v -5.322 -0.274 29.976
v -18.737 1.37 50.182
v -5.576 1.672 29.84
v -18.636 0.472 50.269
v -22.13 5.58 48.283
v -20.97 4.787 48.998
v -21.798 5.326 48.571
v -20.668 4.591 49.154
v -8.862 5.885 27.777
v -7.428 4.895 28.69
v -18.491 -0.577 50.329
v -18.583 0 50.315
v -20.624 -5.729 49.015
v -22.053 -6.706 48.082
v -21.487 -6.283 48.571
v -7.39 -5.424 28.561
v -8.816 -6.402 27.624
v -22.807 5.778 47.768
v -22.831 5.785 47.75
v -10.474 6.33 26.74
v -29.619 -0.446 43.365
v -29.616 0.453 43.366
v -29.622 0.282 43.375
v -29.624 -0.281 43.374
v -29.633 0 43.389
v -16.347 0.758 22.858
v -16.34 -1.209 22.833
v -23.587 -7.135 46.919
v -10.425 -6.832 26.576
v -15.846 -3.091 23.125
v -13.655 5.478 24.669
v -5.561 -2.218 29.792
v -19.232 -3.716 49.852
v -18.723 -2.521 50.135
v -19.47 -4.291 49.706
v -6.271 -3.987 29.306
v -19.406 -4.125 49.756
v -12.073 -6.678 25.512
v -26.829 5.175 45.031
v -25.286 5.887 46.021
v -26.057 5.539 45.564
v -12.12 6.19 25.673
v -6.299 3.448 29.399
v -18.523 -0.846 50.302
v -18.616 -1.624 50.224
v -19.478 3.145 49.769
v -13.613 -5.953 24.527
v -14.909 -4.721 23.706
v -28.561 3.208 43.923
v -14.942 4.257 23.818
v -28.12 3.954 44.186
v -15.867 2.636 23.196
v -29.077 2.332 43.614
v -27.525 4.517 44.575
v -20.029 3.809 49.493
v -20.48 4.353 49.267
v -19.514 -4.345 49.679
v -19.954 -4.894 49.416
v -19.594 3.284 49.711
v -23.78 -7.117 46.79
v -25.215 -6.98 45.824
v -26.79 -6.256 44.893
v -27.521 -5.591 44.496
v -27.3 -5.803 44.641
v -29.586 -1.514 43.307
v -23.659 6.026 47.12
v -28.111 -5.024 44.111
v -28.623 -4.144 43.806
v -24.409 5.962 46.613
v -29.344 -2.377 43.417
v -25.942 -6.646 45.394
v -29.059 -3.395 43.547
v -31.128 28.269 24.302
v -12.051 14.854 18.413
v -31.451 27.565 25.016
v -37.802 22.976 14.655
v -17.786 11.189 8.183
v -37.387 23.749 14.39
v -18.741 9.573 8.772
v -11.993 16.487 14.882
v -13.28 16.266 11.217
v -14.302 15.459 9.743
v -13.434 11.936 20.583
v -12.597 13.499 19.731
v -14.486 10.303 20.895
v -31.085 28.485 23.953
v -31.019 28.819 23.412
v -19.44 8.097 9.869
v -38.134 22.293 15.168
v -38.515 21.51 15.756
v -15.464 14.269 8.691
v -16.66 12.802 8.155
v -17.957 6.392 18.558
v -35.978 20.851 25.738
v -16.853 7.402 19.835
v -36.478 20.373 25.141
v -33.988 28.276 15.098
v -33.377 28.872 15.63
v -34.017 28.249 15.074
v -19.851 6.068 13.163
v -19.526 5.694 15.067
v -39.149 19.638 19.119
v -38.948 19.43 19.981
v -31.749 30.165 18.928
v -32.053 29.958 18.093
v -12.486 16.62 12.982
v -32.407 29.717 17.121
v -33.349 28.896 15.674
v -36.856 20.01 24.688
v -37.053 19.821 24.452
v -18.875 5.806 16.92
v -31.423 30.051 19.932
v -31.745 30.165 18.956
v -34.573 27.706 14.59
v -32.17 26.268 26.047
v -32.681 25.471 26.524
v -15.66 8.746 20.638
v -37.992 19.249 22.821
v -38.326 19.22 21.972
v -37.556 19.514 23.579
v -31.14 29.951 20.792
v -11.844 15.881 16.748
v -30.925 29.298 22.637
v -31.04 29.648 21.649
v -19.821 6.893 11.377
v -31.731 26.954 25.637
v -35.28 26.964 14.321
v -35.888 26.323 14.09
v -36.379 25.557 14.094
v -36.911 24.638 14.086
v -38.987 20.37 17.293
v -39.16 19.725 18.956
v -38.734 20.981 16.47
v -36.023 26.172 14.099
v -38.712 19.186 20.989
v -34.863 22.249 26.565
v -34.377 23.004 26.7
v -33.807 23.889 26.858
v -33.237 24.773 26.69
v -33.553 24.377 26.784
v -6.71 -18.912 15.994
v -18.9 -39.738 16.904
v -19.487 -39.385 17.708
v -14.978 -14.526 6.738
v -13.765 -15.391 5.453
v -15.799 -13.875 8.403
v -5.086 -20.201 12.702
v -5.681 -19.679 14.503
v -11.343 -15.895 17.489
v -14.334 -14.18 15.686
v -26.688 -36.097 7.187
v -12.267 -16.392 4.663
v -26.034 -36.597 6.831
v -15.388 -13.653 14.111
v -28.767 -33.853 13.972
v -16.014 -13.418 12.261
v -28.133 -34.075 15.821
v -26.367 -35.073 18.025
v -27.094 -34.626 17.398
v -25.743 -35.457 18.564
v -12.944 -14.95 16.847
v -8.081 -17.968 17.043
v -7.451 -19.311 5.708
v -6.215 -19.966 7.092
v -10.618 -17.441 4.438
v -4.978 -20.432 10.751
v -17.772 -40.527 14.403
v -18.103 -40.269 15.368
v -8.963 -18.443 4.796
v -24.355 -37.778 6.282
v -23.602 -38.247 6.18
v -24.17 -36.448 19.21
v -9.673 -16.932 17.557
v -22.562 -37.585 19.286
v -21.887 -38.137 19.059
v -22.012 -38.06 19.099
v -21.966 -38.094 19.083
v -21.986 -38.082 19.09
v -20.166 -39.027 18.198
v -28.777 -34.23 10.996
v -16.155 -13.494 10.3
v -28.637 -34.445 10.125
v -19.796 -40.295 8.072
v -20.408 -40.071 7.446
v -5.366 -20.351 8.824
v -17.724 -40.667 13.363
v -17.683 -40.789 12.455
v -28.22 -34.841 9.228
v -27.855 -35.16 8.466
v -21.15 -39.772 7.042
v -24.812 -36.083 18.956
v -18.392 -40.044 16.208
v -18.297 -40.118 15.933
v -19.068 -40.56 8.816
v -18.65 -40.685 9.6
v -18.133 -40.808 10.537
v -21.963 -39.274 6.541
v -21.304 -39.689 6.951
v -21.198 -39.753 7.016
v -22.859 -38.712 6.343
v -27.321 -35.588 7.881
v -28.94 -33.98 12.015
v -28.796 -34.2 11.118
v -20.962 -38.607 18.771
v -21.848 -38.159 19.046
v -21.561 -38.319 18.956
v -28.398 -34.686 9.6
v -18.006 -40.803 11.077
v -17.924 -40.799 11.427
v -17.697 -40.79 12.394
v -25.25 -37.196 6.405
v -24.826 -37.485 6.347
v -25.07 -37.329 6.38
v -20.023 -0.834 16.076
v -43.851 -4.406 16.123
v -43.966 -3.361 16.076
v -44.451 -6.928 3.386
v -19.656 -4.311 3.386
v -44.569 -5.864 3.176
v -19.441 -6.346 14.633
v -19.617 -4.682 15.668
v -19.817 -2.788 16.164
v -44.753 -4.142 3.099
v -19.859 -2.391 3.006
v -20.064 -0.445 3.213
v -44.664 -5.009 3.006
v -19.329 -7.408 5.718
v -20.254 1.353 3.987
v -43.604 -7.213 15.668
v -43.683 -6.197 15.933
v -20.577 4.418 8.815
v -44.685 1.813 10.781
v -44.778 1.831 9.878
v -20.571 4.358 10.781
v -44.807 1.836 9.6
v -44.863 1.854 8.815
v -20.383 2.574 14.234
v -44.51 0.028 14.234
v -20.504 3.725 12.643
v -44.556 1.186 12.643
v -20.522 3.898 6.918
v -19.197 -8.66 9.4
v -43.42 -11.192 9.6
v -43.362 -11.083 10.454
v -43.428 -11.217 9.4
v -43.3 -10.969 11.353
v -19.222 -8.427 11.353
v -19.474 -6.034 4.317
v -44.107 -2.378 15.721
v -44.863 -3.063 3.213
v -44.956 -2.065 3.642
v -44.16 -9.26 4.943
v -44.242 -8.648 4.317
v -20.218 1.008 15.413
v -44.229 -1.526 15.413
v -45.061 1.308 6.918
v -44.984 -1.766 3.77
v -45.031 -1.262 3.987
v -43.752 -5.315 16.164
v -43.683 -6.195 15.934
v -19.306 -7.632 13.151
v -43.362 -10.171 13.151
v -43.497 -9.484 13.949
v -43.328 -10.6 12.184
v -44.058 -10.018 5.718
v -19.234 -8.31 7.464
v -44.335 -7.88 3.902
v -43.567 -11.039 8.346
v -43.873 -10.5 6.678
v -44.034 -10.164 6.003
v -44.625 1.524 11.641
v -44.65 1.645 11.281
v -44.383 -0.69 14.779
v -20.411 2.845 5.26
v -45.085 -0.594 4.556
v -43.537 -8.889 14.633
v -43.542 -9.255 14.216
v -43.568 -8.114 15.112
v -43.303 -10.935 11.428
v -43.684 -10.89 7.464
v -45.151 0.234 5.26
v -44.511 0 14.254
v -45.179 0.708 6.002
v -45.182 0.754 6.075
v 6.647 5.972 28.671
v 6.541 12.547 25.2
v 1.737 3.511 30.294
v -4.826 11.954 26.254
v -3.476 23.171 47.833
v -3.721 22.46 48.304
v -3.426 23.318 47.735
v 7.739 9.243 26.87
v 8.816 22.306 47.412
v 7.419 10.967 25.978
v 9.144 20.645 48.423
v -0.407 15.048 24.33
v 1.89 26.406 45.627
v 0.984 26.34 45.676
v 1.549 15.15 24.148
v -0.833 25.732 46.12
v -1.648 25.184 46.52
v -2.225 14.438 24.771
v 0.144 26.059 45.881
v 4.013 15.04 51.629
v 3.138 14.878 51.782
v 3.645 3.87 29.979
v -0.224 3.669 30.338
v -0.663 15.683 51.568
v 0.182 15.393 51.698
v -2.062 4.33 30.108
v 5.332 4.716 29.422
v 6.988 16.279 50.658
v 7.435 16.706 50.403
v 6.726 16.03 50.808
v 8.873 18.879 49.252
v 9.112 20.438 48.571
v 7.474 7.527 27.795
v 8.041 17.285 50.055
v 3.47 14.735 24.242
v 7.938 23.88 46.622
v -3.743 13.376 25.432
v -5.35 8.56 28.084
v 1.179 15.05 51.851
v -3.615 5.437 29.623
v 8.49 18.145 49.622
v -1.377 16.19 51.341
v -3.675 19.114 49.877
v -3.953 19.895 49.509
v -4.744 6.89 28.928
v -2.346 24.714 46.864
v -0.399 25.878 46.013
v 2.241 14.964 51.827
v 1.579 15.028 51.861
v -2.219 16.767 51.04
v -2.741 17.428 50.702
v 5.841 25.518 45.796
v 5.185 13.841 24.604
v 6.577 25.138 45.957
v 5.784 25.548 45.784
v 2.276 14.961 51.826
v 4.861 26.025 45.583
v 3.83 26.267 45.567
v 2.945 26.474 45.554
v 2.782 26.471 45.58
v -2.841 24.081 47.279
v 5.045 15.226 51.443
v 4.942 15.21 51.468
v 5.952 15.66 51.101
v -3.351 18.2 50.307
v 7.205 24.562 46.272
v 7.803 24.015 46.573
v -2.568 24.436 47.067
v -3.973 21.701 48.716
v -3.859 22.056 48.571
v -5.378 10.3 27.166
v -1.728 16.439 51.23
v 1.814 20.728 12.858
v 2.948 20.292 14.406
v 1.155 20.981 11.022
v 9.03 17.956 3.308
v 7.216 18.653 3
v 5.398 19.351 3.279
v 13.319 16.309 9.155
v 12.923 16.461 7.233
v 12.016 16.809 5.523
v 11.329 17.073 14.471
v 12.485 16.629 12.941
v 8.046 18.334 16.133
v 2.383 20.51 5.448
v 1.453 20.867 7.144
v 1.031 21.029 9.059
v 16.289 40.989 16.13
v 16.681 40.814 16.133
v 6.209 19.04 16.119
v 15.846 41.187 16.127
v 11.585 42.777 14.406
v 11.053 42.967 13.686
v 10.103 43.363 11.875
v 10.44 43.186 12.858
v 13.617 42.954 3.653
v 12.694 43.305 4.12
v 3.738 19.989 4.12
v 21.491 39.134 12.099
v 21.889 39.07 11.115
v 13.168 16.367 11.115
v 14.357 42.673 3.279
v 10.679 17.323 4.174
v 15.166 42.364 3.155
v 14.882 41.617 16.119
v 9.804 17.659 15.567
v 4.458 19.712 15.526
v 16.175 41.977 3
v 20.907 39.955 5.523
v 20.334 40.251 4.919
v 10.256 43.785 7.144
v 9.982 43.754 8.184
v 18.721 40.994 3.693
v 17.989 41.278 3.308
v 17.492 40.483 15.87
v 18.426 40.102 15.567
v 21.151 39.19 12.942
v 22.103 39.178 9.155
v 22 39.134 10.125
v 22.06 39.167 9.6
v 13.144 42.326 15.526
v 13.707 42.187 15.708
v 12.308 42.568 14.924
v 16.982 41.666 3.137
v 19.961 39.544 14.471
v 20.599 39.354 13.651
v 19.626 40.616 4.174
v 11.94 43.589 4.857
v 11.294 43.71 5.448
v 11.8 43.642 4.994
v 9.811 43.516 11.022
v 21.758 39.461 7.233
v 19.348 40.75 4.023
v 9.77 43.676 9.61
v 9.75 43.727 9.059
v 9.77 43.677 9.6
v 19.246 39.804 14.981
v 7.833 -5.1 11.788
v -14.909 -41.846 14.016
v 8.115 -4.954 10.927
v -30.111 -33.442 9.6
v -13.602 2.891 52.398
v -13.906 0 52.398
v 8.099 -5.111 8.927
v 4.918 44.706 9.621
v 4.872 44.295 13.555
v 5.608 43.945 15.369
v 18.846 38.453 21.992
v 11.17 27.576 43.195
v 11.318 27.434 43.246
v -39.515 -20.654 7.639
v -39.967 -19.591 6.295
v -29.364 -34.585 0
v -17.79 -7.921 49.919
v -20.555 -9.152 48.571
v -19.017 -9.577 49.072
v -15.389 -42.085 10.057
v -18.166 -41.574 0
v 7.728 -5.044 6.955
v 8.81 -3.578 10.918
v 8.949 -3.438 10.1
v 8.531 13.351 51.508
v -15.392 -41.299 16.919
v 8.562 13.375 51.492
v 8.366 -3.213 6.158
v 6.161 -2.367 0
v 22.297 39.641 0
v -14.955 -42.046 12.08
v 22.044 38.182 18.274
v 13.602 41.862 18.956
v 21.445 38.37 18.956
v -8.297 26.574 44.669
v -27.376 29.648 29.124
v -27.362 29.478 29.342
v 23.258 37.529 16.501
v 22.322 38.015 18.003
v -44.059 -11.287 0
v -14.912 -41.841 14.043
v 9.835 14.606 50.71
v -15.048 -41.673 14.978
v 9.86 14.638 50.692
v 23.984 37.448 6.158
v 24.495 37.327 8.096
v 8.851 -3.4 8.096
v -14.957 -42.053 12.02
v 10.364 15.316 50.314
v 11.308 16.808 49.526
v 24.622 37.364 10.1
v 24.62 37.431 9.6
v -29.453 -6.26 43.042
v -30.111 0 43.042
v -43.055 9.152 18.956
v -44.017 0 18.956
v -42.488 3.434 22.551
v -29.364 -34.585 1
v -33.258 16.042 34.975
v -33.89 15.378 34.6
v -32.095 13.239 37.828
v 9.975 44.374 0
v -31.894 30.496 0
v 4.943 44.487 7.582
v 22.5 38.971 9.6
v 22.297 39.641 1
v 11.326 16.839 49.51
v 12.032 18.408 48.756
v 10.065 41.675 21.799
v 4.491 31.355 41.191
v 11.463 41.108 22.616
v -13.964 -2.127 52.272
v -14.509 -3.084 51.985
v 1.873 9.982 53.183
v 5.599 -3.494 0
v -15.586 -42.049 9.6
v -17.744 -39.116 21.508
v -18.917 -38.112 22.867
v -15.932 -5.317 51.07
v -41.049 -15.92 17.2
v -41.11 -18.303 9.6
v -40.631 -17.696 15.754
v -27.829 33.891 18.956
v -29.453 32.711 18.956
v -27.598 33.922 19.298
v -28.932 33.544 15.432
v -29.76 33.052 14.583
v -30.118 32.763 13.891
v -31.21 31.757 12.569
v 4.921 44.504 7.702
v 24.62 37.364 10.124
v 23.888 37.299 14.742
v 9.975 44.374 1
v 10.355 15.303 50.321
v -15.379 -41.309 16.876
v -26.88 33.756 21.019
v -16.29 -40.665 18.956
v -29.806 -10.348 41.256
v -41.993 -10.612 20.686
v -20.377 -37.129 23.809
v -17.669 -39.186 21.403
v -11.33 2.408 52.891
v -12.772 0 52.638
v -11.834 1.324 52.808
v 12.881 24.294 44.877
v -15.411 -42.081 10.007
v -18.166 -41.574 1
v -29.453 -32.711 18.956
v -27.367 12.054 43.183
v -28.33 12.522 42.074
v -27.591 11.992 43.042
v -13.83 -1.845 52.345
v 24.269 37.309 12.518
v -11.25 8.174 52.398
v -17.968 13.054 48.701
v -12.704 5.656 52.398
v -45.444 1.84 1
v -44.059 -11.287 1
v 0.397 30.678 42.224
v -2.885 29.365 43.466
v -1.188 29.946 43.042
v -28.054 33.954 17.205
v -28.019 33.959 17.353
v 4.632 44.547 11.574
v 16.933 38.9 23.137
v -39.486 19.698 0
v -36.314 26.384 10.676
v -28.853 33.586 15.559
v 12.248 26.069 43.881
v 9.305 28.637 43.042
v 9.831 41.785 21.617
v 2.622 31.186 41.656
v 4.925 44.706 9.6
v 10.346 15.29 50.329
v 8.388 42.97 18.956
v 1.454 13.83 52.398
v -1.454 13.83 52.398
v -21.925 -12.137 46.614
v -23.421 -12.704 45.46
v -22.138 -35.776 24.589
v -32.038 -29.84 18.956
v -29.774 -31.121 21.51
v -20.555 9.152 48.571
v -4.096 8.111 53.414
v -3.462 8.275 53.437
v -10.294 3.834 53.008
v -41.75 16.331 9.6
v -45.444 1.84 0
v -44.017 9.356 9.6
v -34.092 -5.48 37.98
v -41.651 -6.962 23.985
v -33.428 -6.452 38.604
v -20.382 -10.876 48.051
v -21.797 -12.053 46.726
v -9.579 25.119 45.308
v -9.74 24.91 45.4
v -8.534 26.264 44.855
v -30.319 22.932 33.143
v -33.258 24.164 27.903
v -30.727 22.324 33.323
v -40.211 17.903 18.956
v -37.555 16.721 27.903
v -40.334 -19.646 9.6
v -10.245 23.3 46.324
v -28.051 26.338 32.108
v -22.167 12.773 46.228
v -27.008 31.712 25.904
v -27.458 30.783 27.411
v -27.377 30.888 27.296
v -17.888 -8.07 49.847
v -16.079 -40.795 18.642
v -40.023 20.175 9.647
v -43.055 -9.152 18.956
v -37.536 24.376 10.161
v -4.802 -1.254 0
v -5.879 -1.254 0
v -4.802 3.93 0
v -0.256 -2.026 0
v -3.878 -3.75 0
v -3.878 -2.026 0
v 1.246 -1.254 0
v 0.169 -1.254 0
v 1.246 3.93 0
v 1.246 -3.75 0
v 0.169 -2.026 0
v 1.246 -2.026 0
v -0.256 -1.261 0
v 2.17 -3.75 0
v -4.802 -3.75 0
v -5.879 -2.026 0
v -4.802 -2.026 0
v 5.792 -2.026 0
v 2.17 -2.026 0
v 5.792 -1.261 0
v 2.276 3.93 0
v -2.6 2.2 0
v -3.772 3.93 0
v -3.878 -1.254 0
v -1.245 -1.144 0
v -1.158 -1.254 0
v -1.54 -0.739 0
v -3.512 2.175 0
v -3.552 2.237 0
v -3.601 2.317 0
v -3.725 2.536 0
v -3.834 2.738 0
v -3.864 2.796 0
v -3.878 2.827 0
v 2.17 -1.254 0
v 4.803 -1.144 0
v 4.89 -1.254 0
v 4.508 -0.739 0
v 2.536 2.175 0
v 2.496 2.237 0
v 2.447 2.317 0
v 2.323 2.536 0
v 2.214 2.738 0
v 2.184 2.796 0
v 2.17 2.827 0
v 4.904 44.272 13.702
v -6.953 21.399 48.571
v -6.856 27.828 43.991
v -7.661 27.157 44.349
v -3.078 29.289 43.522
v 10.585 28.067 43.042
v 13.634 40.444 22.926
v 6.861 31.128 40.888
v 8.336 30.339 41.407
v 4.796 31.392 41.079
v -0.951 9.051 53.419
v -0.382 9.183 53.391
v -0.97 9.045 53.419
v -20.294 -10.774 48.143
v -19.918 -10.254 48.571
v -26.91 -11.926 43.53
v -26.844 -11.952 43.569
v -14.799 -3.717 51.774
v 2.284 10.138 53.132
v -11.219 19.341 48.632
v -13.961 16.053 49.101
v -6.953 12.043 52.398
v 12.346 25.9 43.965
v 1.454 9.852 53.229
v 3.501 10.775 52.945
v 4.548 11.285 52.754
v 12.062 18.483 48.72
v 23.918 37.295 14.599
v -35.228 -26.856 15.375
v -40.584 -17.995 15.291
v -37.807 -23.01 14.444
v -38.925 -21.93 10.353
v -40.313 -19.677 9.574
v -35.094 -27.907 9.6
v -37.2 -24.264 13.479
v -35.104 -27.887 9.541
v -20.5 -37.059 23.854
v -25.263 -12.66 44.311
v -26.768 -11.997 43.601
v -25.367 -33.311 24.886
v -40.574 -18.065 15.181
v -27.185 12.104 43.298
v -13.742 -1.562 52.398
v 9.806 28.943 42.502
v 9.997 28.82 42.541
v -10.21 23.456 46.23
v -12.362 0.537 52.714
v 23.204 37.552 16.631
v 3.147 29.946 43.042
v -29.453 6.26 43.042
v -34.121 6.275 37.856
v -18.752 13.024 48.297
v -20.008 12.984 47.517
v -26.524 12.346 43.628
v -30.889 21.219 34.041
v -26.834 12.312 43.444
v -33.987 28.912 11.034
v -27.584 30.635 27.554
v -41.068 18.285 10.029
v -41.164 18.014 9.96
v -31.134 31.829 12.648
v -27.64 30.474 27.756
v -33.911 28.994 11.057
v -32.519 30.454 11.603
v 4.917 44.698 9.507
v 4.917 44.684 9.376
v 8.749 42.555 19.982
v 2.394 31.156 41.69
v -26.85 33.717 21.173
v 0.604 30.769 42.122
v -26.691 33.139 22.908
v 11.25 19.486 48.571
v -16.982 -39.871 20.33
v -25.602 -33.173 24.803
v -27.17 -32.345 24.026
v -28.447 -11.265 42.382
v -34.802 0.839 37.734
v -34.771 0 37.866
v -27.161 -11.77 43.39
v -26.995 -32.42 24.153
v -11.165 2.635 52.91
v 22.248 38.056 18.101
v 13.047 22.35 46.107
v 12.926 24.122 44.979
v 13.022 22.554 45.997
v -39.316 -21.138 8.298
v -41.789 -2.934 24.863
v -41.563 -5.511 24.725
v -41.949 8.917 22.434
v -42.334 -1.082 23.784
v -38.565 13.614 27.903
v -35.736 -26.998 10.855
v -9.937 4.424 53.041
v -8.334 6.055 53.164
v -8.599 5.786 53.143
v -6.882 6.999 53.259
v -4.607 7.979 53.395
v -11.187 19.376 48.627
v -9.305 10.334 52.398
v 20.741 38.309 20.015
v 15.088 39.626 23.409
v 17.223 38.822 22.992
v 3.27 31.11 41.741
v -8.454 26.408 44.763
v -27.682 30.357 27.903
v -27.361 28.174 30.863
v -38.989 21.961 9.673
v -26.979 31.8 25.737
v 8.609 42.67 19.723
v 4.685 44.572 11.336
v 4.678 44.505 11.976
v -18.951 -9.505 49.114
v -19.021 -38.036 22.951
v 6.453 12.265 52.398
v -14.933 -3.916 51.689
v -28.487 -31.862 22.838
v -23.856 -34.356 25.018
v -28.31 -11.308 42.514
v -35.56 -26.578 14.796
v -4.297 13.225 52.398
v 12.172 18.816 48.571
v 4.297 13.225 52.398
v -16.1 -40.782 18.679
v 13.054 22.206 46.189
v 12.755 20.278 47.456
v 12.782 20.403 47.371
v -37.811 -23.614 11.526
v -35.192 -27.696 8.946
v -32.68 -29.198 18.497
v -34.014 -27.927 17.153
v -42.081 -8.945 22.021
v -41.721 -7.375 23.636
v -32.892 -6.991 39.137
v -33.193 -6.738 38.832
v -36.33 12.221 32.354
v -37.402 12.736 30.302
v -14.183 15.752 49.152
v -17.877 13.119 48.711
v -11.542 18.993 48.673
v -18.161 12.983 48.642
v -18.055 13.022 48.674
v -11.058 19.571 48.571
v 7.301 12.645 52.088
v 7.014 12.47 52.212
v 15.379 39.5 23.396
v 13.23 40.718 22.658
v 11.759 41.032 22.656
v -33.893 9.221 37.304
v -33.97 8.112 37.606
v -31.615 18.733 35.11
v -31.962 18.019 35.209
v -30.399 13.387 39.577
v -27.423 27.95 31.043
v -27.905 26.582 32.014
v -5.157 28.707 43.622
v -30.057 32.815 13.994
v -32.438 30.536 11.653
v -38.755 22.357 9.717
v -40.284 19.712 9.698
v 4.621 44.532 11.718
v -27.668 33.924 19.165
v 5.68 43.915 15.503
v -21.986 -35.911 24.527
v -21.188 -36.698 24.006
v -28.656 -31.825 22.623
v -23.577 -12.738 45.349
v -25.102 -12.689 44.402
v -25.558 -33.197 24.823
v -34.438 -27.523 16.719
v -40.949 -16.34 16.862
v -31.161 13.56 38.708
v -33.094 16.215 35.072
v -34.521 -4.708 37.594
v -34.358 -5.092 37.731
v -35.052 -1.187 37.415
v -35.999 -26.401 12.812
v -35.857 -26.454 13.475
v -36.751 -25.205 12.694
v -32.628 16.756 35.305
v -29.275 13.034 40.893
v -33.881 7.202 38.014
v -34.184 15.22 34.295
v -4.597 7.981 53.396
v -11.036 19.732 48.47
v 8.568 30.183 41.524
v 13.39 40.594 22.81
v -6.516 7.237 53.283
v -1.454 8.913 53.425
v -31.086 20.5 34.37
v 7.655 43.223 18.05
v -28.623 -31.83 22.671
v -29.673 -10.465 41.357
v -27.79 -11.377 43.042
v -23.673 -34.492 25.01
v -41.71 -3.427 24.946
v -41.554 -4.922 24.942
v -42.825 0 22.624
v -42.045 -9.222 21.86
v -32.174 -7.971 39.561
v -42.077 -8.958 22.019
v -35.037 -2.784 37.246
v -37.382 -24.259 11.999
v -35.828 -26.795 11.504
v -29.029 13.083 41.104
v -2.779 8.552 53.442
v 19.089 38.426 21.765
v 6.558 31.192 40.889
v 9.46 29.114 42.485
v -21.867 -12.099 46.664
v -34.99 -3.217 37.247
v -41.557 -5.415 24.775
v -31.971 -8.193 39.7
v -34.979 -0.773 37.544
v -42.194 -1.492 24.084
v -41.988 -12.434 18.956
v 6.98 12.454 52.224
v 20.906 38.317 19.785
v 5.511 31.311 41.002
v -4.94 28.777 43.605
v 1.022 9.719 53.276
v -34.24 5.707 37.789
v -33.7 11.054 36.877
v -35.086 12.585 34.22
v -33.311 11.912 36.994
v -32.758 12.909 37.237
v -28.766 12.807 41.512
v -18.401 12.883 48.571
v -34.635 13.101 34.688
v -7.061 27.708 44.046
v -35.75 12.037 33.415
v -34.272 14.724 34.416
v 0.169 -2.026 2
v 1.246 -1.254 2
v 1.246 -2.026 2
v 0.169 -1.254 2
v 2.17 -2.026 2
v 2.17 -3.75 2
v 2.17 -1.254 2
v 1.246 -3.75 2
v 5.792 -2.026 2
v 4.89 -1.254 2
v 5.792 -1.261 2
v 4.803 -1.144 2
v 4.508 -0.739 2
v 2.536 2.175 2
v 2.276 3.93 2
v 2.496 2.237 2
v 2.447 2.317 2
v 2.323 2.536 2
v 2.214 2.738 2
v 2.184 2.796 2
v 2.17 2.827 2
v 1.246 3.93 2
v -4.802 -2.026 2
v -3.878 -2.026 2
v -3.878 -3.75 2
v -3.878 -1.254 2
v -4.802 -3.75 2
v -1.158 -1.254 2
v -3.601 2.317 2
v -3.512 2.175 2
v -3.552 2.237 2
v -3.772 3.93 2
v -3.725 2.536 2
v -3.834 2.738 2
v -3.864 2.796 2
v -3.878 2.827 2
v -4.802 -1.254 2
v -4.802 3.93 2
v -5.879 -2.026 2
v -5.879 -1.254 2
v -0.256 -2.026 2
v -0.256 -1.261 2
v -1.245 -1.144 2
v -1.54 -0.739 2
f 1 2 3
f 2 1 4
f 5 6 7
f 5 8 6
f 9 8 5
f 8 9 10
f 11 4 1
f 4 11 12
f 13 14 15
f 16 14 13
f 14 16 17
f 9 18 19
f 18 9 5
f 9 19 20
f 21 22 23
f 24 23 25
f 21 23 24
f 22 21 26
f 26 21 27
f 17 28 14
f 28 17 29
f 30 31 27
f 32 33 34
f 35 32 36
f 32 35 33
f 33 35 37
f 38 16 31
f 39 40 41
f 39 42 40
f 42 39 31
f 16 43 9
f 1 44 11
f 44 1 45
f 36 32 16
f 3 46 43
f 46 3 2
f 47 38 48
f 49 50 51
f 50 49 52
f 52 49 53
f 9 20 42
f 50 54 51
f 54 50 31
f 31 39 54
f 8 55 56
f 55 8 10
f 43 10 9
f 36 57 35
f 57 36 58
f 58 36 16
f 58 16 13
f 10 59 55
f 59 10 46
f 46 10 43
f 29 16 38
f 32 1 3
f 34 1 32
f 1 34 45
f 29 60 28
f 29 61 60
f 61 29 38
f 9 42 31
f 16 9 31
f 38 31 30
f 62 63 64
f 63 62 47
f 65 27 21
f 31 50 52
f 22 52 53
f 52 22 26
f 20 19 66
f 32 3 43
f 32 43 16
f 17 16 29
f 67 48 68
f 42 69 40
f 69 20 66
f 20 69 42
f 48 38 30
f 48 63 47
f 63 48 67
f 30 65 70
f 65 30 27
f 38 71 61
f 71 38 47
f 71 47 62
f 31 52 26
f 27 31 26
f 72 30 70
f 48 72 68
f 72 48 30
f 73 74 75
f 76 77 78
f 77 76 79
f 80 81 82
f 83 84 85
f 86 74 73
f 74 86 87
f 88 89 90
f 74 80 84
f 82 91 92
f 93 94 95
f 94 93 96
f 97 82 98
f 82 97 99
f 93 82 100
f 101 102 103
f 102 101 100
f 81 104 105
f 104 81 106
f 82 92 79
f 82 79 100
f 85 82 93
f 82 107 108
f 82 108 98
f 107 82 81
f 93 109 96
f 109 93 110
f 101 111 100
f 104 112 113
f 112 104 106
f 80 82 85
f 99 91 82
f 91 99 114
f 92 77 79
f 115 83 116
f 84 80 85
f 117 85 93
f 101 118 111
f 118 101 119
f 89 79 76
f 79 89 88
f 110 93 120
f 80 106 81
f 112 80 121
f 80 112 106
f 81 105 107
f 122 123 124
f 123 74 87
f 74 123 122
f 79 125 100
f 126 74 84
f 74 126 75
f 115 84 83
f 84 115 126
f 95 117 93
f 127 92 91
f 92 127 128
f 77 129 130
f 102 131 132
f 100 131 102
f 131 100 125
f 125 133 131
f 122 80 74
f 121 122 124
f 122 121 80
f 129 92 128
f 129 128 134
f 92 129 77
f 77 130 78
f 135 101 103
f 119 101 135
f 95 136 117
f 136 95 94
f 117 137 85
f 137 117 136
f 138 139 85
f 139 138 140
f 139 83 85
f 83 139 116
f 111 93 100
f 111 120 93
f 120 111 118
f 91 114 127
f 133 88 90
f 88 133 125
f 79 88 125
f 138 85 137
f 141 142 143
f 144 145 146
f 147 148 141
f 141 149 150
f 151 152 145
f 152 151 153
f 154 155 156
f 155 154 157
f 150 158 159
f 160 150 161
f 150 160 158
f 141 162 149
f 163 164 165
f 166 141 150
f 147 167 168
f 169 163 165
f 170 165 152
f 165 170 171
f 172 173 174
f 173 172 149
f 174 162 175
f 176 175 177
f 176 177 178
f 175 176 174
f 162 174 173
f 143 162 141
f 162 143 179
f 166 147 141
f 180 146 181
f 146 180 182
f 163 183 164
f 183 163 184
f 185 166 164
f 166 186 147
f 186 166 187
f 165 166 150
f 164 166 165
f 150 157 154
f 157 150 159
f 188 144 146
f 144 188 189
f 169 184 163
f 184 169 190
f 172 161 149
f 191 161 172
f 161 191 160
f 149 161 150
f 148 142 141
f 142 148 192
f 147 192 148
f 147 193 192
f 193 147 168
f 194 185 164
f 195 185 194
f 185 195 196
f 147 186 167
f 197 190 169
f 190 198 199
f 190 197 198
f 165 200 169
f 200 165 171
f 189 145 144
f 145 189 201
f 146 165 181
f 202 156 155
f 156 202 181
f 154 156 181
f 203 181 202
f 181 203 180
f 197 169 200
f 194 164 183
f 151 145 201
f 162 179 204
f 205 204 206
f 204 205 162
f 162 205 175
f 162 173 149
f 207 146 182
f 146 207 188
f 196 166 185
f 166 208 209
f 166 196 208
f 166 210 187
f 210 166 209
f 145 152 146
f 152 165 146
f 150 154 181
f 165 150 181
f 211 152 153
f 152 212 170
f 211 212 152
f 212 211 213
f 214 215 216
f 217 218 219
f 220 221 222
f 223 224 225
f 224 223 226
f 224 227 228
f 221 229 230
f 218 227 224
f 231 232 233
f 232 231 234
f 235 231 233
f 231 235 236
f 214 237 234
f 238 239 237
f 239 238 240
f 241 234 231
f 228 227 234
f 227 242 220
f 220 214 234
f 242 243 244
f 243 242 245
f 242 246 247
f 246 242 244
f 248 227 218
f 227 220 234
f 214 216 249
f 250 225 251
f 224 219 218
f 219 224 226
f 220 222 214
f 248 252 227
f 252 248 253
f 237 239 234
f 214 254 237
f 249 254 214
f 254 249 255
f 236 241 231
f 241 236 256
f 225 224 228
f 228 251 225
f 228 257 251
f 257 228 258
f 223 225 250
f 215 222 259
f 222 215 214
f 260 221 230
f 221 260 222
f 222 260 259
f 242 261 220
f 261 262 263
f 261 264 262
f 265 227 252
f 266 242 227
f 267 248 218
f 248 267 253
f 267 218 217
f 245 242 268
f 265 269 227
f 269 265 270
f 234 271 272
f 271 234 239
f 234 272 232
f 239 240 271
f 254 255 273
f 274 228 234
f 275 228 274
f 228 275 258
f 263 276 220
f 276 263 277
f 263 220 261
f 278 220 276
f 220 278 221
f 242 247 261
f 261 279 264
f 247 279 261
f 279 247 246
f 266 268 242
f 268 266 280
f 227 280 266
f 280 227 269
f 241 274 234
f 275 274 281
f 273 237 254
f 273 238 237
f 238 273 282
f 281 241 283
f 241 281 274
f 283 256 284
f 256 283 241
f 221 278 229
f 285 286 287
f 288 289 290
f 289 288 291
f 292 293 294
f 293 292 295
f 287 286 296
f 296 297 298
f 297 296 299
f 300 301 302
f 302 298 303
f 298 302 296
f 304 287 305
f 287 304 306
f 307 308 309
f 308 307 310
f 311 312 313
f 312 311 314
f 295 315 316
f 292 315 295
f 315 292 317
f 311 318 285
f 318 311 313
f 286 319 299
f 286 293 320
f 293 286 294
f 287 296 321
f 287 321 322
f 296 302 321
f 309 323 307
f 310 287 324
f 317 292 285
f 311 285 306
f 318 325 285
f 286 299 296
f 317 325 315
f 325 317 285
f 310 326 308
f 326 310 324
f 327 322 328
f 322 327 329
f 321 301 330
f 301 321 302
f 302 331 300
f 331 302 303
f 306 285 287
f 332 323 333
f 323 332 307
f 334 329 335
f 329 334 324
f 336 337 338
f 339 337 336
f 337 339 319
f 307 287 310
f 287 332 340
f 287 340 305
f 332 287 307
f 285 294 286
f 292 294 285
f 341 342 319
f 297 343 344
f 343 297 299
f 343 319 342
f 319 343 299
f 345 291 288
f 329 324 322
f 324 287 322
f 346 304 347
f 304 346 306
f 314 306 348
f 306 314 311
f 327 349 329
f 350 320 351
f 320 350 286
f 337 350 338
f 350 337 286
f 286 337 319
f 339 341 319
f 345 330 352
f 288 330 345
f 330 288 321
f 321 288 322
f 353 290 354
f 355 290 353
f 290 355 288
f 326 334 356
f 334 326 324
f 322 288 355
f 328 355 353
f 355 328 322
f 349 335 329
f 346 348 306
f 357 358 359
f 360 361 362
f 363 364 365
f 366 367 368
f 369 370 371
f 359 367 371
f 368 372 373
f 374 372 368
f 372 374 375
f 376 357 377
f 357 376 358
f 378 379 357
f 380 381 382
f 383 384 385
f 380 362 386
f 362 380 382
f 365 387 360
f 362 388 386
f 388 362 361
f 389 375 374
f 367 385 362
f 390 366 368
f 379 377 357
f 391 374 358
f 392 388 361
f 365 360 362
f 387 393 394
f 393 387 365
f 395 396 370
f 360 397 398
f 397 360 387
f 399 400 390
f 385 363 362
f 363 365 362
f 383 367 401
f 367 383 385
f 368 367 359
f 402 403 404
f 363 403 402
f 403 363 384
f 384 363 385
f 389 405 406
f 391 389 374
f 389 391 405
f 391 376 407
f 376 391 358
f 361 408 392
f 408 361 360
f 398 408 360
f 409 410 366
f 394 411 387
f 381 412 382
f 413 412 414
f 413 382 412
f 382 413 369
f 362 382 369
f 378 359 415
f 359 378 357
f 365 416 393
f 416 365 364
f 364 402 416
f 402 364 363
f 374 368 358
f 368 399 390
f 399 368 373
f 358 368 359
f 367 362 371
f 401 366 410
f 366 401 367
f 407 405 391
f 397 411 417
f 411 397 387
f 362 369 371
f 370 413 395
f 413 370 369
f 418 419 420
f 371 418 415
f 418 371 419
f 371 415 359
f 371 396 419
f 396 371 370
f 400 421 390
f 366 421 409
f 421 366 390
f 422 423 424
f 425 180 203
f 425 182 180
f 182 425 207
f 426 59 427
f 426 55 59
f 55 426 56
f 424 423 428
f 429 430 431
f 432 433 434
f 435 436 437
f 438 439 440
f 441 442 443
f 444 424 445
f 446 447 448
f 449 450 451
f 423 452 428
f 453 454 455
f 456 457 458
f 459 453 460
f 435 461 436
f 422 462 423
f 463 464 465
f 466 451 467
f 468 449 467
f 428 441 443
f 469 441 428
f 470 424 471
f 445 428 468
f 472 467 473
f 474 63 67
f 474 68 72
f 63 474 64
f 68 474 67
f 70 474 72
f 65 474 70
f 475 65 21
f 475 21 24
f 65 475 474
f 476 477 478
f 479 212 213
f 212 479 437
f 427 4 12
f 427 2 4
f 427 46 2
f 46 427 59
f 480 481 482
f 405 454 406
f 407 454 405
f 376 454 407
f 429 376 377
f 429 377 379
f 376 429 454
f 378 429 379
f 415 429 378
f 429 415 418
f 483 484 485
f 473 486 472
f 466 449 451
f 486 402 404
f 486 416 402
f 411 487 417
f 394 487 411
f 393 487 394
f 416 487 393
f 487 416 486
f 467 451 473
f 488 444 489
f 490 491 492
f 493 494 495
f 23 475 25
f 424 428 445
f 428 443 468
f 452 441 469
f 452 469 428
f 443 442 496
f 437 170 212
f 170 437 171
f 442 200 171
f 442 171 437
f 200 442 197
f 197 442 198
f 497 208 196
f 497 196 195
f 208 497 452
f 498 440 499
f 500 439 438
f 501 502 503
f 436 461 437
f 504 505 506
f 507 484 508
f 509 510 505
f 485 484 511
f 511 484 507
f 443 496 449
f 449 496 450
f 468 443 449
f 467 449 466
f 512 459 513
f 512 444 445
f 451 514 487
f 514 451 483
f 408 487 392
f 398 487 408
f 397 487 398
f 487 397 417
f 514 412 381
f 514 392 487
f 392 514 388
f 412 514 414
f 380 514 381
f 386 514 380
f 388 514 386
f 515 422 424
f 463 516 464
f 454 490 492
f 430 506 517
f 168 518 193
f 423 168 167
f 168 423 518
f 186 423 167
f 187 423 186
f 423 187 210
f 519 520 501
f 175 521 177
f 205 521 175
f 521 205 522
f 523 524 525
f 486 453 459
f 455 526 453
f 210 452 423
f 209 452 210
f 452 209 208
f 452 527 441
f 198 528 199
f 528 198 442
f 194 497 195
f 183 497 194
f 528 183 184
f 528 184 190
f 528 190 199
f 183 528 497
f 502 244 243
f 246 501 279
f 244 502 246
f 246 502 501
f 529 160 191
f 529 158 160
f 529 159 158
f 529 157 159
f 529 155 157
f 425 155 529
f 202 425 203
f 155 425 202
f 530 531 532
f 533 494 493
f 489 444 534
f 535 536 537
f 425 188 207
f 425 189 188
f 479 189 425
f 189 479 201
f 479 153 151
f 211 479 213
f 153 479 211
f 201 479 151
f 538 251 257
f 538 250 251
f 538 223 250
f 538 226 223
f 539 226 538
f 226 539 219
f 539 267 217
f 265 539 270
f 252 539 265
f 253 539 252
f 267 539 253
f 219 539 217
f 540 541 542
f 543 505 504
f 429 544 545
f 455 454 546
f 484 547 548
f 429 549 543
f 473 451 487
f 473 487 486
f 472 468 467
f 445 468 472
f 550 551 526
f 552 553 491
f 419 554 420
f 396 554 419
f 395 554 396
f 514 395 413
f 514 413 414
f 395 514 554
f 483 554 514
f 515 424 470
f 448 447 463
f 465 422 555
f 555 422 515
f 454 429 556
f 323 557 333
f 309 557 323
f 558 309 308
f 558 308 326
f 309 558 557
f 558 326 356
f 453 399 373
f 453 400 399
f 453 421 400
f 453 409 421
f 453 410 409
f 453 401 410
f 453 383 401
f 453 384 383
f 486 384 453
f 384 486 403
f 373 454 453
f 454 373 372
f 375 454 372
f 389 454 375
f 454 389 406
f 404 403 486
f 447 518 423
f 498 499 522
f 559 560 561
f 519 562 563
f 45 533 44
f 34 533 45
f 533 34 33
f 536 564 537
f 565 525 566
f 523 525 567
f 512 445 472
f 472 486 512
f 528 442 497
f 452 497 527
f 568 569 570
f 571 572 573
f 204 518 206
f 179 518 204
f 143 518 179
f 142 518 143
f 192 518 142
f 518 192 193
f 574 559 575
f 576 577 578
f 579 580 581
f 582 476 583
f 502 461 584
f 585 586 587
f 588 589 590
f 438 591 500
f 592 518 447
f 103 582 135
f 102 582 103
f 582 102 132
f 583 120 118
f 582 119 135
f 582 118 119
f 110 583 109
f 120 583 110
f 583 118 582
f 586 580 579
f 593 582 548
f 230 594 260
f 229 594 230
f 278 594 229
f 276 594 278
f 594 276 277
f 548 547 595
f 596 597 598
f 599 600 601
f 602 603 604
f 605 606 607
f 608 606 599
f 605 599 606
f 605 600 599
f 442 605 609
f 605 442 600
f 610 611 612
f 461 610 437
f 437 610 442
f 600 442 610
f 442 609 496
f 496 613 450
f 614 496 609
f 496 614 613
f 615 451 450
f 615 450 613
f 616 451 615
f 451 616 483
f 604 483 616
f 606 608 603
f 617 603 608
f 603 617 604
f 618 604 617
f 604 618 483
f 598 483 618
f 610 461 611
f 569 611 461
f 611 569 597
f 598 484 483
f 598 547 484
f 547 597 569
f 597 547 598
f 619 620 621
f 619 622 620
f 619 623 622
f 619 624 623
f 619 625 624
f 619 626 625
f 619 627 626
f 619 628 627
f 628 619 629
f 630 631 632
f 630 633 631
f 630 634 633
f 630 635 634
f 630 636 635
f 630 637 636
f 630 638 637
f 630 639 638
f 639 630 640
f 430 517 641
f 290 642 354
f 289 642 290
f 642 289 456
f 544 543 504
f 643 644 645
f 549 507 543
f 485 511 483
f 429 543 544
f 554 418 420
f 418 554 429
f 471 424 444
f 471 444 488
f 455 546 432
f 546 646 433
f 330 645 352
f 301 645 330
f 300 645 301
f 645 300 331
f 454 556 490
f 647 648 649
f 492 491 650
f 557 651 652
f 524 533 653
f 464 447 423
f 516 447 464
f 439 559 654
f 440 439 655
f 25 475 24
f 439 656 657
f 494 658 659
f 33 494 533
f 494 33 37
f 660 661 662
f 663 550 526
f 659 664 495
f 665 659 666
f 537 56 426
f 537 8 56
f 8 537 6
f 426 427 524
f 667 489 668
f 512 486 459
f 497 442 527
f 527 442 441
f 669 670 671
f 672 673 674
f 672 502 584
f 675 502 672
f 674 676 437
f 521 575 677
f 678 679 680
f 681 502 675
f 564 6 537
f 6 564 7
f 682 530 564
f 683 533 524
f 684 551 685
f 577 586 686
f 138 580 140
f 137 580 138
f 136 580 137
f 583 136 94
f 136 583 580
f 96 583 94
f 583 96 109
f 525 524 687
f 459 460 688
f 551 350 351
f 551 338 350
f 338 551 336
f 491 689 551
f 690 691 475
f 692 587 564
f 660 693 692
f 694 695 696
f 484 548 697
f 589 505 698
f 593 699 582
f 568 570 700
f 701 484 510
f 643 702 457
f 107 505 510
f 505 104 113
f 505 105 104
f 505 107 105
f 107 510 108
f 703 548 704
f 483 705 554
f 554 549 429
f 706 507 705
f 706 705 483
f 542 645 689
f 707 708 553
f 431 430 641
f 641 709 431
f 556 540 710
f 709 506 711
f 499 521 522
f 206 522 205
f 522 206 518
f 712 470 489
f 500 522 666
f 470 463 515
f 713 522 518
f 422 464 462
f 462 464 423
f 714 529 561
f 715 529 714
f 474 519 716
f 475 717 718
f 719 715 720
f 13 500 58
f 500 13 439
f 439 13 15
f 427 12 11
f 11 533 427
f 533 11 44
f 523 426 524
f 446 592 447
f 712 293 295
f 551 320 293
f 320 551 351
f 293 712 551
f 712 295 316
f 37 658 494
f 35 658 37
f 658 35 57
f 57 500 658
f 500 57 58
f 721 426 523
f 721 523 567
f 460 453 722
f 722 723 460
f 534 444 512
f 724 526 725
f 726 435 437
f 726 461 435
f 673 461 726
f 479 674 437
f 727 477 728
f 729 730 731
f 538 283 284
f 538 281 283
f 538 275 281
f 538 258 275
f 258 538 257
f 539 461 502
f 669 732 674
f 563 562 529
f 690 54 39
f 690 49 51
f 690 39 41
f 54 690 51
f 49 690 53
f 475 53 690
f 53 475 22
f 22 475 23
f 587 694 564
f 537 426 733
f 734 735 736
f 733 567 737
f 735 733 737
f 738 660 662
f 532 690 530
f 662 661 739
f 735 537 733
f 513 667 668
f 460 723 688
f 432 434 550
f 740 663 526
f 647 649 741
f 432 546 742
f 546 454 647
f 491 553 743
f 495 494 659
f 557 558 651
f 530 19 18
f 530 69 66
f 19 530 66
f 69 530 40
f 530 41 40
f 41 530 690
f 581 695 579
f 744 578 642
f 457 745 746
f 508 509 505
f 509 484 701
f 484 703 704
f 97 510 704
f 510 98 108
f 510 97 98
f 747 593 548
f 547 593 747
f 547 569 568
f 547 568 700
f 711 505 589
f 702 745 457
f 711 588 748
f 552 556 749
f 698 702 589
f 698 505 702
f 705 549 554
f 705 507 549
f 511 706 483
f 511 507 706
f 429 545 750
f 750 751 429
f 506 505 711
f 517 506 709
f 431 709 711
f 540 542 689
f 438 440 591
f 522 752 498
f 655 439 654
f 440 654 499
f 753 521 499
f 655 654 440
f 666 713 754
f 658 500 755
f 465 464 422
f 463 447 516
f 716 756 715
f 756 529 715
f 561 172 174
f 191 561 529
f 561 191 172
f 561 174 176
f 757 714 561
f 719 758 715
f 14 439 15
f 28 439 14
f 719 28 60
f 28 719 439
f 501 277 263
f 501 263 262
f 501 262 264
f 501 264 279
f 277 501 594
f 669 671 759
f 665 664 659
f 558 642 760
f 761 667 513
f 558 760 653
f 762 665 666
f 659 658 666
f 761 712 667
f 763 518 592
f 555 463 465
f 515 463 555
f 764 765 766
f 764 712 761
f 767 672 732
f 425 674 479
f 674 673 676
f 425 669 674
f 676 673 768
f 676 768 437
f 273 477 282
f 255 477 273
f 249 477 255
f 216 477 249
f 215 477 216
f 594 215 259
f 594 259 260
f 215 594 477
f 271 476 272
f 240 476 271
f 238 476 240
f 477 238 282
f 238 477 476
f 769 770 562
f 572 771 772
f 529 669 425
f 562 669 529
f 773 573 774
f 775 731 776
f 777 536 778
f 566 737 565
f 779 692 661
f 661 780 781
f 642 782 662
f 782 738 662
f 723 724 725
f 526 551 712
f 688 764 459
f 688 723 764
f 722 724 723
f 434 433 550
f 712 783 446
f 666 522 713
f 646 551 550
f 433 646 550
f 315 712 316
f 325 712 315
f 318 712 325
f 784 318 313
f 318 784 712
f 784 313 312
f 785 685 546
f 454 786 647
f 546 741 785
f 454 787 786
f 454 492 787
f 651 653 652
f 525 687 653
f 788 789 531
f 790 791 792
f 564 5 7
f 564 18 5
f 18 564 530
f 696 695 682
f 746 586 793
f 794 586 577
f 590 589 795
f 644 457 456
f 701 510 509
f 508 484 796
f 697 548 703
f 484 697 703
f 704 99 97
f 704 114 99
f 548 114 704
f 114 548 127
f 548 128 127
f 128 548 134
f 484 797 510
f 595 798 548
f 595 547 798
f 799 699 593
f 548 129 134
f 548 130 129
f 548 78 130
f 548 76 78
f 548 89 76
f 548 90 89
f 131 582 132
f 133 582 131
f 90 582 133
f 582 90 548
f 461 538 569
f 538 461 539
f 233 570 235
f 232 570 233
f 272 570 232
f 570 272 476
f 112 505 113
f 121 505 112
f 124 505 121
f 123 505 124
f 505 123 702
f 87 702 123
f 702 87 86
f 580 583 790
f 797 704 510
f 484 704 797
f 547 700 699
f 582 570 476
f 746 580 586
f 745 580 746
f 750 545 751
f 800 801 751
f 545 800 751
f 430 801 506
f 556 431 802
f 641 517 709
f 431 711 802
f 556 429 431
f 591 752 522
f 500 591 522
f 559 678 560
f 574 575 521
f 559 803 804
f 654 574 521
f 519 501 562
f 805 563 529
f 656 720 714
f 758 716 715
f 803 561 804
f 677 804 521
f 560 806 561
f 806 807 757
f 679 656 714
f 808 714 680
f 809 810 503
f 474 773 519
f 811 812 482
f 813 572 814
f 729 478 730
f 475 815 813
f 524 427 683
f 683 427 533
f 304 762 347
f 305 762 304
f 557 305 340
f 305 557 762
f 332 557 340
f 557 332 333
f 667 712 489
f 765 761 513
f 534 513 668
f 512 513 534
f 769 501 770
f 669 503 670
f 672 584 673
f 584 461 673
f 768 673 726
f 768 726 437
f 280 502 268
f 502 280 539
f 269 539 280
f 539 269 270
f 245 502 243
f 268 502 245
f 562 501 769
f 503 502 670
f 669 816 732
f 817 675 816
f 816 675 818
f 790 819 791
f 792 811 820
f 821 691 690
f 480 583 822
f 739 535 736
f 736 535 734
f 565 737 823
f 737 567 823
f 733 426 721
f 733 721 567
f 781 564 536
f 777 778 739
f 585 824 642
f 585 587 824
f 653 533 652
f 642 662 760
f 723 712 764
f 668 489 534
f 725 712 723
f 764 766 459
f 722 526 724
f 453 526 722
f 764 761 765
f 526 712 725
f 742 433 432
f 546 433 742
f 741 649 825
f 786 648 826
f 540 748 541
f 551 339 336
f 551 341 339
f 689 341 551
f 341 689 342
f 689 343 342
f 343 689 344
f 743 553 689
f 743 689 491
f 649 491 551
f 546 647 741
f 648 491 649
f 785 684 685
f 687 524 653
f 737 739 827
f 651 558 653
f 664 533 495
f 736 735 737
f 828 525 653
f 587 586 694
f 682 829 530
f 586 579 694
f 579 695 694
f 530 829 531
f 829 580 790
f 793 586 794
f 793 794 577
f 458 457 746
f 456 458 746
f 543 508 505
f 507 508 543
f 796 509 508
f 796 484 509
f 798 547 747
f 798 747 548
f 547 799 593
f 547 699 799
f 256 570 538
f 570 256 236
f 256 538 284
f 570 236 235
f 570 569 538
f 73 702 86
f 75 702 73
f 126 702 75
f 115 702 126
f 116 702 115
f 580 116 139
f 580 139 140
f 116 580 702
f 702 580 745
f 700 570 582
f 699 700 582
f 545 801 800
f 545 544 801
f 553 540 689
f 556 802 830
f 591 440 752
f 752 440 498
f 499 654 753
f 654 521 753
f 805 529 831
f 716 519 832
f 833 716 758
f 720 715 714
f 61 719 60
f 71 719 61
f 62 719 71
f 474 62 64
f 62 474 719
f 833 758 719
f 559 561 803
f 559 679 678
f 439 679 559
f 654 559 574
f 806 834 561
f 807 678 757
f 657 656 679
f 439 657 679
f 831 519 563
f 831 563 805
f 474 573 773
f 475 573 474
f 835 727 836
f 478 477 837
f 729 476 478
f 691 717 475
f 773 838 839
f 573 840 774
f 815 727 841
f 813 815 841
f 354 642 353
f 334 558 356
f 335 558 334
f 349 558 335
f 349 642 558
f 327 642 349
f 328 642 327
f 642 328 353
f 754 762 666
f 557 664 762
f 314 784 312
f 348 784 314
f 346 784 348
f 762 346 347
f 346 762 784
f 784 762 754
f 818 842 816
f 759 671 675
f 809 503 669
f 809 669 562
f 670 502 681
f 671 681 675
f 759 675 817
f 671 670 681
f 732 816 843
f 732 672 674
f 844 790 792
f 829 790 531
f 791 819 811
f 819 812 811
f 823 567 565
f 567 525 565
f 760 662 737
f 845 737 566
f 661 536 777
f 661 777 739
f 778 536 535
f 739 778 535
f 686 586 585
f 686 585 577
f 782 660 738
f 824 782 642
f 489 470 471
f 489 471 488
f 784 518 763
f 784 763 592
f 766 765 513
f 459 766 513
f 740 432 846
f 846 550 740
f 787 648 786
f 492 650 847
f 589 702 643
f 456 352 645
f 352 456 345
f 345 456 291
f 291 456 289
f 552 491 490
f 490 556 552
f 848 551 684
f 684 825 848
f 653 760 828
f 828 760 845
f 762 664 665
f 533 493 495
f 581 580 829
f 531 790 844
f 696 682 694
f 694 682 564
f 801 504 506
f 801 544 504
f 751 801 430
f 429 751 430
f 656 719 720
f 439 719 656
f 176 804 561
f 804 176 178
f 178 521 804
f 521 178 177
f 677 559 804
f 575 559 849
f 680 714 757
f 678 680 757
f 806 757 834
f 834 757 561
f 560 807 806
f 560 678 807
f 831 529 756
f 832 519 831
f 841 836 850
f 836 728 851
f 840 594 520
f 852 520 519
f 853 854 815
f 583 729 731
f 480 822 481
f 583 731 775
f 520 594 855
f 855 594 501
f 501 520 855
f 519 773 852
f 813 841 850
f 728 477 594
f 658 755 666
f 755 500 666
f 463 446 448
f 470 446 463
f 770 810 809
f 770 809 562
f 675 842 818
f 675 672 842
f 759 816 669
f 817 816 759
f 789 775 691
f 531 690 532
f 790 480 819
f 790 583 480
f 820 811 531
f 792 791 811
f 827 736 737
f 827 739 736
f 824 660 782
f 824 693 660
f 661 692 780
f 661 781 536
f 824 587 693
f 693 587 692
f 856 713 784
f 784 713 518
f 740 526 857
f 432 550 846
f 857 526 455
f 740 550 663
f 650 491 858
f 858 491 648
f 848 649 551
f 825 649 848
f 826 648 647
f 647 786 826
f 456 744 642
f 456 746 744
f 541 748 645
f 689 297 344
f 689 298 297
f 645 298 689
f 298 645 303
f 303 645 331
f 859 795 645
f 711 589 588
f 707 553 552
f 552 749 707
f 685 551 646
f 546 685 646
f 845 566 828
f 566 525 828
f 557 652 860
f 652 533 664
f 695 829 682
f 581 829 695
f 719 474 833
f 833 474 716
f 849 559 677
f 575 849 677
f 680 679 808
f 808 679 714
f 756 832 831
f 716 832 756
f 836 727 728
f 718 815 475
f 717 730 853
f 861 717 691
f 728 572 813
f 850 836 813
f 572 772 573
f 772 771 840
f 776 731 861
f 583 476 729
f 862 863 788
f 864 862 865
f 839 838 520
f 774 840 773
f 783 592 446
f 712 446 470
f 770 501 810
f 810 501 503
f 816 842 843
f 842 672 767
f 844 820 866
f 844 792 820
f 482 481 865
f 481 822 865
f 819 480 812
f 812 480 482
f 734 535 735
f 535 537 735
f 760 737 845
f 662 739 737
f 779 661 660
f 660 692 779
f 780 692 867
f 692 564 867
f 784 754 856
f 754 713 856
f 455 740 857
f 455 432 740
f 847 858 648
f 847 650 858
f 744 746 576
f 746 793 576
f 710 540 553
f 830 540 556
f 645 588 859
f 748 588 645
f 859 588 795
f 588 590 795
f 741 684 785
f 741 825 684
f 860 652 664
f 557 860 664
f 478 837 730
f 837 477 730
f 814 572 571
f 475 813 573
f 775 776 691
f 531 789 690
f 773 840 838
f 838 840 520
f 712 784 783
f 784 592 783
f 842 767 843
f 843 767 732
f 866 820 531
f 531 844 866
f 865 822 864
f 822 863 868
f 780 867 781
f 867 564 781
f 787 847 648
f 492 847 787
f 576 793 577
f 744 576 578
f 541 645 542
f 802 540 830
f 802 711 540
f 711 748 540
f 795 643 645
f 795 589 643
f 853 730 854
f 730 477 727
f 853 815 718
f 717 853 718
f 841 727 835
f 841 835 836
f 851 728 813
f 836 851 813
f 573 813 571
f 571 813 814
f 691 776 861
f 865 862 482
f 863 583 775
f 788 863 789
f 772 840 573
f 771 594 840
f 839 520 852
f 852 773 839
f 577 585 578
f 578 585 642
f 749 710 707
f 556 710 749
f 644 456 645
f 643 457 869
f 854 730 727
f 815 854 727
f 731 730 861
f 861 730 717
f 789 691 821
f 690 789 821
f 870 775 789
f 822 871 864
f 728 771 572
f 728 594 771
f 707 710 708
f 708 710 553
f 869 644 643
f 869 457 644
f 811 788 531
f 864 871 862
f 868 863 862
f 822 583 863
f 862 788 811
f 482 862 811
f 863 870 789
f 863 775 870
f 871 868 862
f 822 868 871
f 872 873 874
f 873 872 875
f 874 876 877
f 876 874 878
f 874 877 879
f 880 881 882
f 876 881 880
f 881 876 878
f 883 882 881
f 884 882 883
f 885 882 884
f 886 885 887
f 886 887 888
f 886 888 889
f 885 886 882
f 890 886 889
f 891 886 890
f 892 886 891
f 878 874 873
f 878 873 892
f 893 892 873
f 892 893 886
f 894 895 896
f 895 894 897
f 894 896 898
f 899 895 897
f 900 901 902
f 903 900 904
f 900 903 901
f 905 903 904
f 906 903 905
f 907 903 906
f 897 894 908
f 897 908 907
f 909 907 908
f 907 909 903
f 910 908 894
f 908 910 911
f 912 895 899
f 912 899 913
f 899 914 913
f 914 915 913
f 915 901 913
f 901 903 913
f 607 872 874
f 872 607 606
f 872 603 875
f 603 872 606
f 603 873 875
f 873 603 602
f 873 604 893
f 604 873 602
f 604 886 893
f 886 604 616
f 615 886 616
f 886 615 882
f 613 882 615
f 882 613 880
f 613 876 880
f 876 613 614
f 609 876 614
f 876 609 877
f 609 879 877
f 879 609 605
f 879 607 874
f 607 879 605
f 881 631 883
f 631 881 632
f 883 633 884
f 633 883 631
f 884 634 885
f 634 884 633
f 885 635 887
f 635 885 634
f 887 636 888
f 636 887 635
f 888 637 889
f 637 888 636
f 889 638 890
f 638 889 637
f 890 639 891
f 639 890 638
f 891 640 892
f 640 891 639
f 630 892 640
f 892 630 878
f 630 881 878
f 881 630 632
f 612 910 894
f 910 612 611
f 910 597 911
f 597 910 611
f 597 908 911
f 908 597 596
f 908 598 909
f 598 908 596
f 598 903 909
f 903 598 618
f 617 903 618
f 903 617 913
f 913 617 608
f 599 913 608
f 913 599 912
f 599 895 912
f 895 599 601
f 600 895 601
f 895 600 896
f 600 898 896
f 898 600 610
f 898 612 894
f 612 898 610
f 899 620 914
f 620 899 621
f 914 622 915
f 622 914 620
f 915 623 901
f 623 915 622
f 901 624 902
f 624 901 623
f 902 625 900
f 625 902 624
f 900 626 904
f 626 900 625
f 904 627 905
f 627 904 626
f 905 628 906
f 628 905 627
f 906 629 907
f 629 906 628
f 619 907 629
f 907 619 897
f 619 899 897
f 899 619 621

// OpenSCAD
difference() {
	difference() {
		difference() {
			hull() {
				union() {
					union() {
						rotate(a = -178.6835594906, v = [0, 0, 1]) {
							translate(v = [0, -6.6000000000, 0]) {
								cube(size = [24.4494924761, 13.2000000000, 1]);
							}
						}
						rotate(a = 144.8853995798, v = [0, 0, 1]) {
							translate(v = [0, -6.6000000000, 0]) {
								cube(size = [43.6307070360, 13.2000000000, 1]);
							}
						}
						rotate(a = -121.9680985931, v = [0, 0, 1]) {
							translate(v = [0, -6.6000000000, 0]) {
								cube(size = [44.8869036444, 13.2000000000, 1]);
							}
						}
						rotate(a = -173.9748028561, v = [0, 0, 1]) {
							translate(v = [0, -6.6000000000, 0]) {
								cube(size = [45.0000000000, 13.2000000000, 1]);
							}
						}
						rotate(a = 82.9745815652, v = [0, 0, 1]) {
							translate(v = [0, -6.6000000000, 0]) {
								cube(size = [21.1674200662, 13.2000000000, 1]);
							}
						}
						rotate(a = 68.9871944397, v = [0, 0, 1]) {
							translate(v = [0, -6.6000000000, 0]) {
								cube(size = [45.0000000000, 13.2000000000, 1]);
							}
						}
					}
					translate(v = [0, 0, 9.6000049475]) {
						intersection() {
							hull() {
								rotate(a = 32.9101317612, v = [0.0124832290, -0.5431794892, 0.0000005307]) {
									cylinder(h = 45, r = 9.6000000000);
								}
								rotate(a = 75.8294540278, v = [-0.5577104495, -0.7931126102, 0.0000013508]) {
									cylinder(h = 45, r = 9.6000000000);
								}
								rotate(a = 85.9370802893, v = [0.8462109863, -0.5281164389, -0.0000003181]) {
									cylinder(h = 45, r = 9.6000000000);
								}
								rotate(a = 90.0000692927, v = [0.1049658171, -0.9944758304, 0.0000008895]) {
									cylinder(h = 45, r = 9.6000000000);
								}
								rotate(a = 28.0593639091, v = [-0.4668545582, 0.0575320053, 0.0000004093]) {
									cylinder(h = 45, r = 9.6000000000);
								}
								rotate(a = 89.9999185664, v = [-0.9335003082, 0.3585765951, 0.0000005749]) {
									cylinder(h = 45, r = 9.6000000000);
								}
							}
							sphere(r = 45);
						}
					}
				}
			}
			translate(v = [0, 0, 9.6000049475]) {
				rotate(a = 32.9101317612, v = [0.0124832290, -0.5431794892, 0.0000005307]) {
					translate(v = [0, 0, 20]) {
						cylinder(h = 45, r = 6.6000000000);
					}
				}
				rotate(a = 75.8294540278, v = [-0.5577104495, -0.7931126102, 0.0000013508]) {
					translate(v = [0, 0, 20]) {
						cylinder(h = 45, r = 6.6000000000);
					}
				}
				rotate(a = 85.9370802893, v = [0.8462109863, -0.5281164389, -0.0000003181]) {
					translate(v = [0, 0, 20]) {
						cylinder(h = 45, r = 6.6000000000);
					}
				}
				rotate(a = 90.0000692927, v = [0.1049658171, -0.9944758304, 0.0000008895]) {
					translate(v = [0, 0, 20]) {
						cylinder(h = 45, r = 6.6000000000);
					}
				}
				rotate(a = 28.0593639091, v = [-0.4668545582, 0.0575320053, 0.0000004093]) {
					translate(v = [0, 0, 20]) {
						cylinder(h = 45, r = 6.6000000000);
					}
				}
				rotate(a = 89.9999185664, v = [-0.9335003082, 0.3585765951, 0.0000005749]) {
					translate(v = [0, 0, 20]) {
						cylinder(h = 45, r = 6.6000000000);
					}
				}
			}
		}
		translate(v = [-100, -100, -100]) {
			cube(size = [200, 200, 100]);
		}
	}
	translate(v = [0, 0, 2]) {
		rotate(a = 180, v = [0, 1, 0]) {
			linear_extrude(height = 3) {
				text(halign = "center", size = 8, text = "44", valign = "center");
			}
		}
	}
}
